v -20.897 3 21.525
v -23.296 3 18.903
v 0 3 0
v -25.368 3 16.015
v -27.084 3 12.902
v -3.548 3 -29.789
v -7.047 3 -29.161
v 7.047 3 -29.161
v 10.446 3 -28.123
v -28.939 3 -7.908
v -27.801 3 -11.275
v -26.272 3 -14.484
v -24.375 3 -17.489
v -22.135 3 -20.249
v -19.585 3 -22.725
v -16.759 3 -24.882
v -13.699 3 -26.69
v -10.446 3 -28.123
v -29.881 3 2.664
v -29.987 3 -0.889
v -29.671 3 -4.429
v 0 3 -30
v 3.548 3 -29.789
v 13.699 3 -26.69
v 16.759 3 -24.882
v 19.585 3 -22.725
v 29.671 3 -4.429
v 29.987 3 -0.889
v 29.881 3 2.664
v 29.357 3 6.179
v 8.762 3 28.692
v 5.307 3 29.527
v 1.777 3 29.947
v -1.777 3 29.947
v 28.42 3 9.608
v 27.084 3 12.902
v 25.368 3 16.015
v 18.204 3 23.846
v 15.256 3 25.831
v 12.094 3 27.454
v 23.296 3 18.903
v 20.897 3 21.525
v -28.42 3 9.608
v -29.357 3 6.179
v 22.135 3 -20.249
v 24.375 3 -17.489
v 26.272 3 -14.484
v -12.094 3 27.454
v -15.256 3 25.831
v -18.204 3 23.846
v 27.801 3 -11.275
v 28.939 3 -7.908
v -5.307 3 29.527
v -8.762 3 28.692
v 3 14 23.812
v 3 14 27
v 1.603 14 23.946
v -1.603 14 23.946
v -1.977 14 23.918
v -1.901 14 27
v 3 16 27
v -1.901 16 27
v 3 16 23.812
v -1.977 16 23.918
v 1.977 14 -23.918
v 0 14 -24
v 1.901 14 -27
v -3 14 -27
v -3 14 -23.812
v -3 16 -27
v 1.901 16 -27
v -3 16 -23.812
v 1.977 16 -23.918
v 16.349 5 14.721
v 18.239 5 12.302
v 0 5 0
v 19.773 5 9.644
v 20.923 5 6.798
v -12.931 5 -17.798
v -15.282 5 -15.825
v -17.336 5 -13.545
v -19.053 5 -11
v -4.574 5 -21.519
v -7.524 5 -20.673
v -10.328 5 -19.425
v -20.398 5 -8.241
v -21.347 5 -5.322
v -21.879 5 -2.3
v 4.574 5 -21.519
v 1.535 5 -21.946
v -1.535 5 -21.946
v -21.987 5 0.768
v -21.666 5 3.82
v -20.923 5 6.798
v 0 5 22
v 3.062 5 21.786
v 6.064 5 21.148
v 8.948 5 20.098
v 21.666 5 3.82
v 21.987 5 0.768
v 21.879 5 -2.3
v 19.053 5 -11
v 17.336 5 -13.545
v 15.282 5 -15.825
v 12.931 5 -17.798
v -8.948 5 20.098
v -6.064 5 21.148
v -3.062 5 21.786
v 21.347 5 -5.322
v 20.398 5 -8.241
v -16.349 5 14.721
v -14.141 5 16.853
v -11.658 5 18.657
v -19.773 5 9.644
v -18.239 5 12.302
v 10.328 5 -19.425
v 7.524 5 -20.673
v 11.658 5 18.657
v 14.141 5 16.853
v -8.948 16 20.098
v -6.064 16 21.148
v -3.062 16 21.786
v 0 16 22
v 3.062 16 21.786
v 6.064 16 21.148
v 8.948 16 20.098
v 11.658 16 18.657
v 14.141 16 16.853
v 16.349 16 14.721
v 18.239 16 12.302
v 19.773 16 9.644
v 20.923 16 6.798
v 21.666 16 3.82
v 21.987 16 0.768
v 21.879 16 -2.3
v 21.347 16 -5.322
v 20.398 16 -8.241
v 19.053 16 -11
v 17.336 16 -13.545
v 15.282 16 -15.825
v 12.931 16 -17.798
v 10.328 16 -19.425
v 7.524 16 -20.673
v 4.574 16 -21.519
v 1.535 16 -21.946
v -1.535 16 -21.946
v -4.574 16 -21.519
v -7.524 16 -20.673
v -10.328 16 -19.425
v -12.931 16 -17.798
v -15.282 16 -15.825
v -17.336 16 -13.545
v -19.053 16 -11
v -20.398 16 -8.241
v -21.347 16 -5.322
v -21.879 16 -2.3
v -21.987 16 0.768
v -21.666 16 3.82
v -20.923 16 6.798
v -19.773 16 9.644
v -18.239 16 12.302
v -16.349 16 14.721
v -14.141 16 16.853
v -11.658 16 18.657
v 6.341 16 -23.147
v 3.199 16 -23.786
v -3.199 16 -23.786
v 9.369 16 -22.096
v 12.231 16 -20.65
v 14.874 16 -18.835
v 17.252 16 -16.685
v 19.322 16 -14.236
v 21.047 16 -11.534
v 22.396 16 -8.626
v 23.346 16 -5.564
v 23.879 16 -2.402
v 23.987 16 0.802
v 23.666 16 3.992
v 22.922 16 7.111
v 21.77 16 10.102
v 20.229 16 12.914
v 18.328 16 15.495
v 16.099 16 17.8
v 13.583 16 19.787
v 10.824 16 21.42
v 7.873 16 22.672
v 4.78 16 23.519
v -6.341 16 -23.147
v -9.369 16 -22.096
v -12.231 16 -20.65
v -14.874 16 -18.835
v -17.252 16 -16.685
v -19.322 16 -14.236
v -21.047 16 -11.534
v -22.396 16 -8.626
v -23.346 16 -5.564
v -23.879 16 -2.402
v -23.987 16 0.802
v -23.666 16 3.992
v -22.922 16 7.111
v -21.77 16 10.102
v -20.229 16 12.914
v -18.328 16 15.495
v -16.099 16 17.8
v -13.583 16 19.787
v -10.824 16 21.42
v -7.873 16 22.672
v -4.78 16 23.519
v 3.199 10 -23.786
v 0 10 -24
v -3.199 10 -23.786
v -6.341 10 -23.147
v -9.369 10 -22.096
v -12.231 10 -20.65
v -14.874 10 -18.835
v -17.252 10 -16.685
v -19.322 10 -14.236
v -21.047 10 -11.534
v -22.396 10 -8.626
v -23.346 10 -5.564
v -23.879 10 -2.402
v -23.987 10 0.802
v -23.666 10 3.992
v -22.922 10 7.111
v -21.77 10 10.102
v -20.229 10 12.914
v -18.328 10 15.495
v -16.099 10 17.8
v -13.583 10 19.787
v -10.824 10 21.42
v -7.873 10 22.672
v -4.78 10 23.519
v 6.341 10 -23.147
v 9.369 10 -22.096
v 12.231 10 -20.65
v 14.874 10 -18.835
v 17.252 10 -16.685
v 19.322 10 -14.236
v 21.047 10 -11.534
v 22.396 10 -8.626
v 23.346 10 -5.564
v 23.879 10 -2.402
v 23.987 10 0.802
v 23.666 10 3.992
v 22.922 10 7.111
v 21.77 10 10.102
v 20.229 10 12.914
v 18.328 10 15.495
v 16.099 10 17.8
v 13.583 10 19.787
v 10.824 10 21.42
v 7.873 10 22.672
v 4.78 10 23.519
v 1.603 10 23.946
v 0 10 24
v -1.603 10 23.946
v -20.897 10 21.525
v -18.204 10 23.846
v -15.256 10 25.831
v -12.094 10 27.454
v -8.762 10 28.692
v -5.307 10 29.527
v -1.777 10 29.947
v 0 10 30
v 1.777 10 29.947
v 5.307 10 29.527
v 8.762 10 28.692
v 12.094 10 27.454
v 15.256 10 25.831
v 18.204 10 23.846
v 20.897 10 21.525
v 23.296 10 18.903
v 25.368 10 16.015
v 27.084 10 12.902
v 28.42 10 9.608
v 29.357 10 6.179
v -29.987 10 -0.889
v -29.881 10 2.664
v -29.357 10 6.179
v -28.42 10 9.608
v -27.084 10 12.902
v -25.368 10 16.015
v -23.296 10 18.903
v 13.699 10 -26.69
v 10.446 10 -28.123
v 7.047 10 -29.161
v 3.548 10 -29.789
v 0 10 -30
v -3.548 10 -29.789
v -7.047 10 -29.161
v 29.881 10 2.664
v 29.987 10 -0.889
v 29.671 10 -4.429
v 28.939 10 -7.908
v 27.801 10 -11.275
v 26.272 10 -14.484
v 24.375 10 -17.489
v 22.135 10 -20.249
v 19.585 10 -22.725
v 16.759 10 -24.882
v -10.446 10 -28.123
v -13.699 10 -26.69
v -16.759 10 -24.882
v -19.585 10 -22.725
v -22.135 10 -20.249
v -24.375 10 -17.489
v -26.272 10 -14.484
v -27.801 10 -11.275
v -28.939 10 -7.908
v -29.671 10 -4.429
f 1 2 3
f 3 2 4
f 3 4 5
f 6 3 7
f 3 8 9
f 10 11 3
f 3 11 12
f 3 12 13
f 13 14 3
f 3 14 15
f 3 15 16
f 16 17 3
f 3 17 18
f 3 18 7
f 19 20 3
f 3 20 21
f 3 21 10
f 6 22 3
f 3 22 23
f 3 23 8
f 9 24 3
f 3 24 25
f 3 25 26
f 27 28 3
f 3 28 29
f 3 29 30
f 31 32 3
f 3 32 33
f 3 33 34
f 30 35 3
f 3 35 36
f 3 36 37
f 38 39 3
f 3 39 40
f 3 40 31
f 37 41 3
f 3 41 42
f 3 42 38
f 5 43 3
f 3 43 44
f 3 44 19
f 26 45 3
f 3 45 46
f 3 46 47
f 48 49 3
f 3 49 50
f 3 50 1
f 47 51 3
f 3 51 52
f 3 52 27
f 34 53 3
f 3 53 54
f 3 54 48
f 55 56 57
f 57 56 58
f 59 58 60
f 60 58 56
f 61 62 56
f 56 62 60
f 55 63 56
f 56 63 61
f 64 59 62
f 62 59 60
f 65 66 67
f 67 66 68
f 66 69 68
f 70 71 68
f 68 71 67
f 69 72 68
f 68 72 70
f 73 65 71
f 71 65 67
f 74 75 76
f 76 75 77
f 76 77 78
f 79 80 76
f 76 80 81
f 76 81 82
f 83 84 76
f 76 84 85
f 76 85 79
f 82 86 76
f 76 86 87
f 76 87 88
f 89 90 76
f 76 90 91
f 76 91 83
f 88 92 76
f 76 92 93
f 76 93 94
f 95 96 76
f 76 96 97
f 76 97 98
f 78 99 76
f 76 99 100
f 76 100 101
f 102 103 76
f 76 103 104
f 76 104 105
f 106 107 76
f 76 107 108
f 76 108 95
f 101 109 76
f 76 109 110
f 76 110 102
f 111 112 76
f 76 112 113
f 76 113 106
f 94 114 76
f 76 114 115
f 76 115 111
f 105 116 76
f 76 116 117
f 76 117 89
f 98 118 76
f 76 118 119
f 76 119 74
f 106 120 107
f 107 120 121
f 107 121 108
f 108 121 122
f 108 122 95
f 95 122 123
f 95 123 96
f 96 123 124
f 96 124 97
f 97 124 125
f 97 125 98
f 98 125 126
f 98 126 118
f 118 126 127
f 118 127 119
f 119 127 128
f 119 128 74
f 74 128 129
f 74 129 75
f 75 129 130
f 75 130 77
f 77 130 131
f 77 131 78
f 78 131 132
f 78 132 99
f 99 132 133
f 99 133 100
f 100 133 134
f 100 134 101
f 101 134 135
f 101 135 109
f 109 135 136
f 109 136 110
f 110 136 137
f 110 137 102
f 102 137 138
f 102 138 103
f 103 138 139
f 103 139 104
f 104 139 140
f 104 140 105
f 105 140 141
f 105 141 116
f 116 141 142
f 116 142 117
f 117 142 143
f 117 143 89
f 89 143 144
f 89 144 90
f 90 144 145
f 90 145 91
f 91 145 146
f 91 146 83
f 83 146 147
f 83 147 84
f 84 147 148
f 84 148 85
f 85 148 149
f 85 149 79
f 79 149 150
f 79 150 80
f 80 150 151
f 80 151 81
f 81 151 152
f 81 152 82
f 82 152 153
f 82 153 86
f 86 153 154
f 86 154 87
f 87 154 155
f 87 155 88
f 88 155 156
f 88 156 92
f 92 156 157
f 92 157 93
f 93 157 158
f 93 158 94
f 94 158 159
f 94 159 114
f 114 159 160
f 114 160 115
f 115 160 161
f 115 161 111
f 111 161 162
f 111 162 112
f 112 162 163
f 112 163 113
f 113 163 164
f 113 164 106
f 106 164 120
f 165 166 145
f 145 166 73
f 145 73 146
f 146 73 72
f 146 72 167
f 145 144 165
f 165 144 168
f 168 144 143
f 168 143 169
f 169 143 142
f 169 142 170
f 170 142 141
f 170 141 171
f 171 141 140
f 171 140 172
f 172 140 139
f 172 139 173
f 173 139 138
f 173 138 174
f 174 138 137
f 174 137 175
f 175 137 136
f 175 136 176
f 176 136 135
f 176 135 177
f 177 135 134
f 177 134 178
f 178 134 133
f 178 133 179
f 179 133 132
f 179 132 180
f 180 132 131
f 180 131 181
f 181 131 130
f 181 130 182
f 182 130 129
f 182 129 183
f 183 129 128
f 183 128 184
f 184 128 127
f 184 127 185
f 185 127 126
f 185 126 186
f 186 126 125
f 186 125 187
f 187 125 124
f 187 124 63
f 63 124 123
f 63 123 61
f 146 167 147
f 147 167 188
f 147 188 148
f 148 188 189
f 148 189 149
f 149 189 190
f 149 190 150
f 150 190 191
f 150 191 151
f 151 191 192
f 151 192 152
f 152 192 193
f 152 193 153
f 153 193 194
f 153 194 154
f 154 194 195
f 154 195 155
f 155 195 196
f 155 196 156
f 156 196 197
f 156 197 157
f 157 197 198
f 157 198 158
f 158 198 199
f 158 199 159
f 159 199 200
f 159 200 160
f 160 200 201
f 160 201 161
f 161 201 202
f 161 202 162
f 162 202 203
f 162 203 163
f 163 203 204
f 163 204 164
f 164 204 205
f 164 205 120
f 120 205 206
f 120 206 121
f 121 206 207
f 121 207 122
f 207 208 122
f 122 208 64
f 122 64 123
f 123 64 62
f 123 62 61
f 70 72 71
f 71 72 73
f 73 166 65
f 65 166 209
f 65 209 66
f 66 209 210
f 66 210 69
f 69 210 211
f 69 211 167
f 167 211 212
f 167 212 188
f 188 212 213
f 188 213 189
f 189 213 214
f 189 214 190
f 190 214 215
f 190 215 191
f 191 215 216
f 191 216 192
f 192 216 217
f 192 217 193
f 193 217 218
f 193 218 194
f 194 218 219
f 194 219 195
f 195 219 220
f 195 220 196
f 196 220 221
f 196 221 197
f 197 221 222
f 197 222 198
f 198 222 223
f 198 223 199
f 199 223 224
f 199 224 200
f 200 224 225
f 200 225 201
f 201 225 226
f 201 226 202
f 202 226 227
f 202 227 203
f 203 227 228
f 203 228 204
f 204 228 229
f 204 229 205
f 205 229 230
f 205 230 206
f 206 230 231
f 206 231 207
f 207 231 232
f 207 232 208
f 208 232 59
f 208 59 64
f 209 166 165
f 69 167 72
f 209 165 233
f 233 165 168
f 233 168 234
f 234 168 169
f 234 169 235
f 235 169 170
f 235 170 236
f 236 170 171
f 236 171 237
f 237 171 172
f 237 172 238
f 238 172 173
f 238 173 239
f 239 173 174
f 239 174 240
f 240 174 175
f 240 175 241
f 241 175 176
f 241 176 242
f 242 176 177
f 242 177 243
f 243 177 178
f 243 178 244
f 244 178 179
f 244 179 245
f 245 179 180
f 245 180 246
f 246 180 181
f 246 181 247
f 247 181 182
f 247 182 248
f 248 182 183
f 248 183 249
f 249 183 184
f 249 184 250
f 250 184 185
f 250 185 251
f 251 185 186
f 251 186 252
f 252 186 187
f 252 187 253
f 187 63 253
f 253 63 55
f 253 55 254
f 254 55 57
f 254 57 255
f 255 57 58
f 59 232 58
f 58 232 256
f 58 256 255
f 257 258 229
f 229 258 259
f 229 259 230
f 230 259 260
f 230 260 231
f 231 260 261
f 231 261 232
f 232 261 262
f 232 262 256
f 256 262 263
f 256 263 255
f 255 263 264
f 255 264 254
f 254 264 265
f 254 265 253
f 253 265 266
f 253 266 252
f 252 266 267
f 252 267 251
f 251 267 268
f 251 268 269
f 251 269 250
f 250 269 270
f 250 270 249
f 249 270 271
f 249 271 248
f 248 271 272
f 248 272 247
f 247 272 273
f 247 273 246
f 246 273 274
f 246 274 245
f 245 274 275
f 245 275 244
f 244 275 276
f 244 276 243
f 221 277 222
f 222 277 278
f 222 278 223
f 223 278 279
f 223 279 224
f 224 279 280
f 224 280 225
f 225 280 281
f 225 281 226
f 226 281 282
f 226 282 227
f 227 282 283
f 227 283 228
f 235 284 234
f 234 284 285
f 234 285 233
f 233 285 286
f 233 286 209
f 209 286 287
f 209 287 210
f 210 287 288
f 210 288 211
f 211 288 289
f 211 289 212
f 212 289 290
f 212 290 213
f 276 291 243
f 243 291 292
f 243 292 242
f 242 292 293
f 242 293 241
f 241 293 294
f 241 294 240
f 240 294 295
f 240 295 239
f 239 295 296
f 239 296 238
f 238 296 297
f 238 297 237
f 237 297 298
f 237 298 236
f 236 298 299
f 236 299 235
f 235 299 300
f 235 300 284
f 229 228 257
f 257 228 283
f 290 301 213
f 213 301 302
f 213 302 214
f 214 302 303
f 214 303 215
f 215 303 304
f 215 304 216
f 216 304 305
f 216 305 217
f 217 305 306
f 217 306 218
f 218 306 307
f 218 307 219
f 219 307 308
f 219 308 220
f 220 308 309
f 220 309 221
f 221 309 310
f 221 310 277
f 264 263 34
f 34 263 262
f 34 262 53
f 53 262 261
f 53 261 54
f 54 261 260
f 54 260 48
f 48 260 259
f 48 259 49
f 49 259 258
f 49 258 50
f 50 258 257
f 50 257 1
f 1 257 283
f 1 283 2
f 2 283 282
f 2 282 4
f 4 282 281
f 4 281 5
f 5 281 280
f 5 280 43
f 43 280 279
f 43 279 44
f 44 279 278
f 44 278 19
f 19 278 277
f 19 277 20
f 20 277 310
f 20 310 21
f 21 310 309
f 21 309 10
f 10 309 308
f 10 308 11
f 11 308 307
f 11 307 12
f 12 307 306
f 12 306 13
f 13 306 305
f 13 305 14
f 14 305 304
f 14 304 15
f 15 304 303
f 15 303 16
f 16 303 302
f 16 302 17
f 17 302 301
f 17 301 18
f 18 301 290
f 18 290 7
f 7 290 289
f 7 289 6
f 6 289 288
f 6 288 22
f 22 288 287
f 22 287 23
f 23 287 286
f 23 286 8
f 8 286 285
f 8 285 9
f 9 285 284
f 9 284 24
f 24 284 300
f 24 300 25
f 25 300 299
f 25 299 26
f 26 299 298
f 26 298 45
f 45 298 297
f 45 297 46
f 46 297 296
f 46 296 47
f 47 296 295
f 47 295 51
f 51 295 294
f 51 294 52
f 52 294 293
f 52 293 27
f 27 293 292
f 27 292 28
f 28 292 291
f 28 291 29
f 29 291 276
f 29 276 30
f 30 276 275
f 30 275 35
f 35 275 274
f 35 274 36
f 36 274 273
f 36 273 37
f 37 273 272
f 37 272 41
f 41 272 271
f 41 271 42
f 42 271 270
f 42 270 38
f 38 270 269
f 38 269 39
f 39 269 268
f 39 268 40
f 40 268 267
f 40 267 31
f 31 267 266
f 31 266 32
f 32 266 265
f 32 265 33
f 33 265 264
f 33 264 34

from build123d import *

# Parameters (mm, degrees)
SKETCH1_R           = 30
BOSS_EXTRUDE1_DEPTH = 10
SKETCH4_R           = 24
BOSS_EXTRUDE2_DEPTH = 6
SKETCH5_R           = 22
CUT_EXTRUDE2_DEPTH  = 11
BOSS_EXTRUDE5_DEPTH = 2
SKETCH10_R          = 30
CUT_EXTRUDE3_DEPTH  = 3


with BuildPart() as part:
    # Sketch1 → Boss-Extrude1 (new body)
    with BuildSketch(Plane(origin=(0, 0, 0), x_dir=(1, 0, 0), z_dir=(0, 1, 0))):
        with Locations(Location((0, 0, 0), (0, 0, 270))):
            Circle(SKETCH1_R)
    extrude(amount=BOSS_EXTRUDE1_DEPTH)

    # Sketch4 → Boss-Extrude2 (add)
    with BuildSketch(Plane(origin=(0, 10, 0), x_dir=(1, 0, 0), z_dir=(0, 1, 0))):
        with Locations(Location((0, 0, 0), (0, 0, 270))):
            Circle(SKETCH4_R)
    extrude(amount=BOSS_EXTRUDE2_DEPTH)

    # Sketch5 → Cut-Extrude2 (cut)
    with BuildSketch(Plane(origin=(0, 16, 0), x_dir=(1, 0, 0), z_dir=(0, 1, 0))):
        with Locations(Location((0, 0, 0), (0, 0, 270))):
            Circle(SKETCH5_R)
    extrude(amount=-CUT_EXTRUDE2_DEPTH, mode=Mode.SUBTRACT)

    # Sketch9 → Boss-Extrude5 (add)
    with BuildSketch(Plane(origin=(0, 16, 0), x_dir=(1, 0, 0), z_dir=(0, 1, 0))):
        Polygon((0.5, -23), (-2, -23), (-1.900803743, -27), (3, -27), (3, -23), align=None)
        Polygon((-3, 23), (-3, 27), (1.900803743, 27), (2, 23), (-0.5, 23), align=None)
    extrude(amount=-BOSS_EXTRUDE5_DEPTH)

    # Sketch10 → Cut-Extrude3 (cut)
    with BuildSketch(Plane.XZ):
        with Locations(Location((0, 0, 0), (0, 0, 270))):
            Circle(SKETCH10_R)
    extrude(amount=-CUT_EXTRUDE3_DEPTH, mode=Mode.SUBTRACT)


solid = part.part
